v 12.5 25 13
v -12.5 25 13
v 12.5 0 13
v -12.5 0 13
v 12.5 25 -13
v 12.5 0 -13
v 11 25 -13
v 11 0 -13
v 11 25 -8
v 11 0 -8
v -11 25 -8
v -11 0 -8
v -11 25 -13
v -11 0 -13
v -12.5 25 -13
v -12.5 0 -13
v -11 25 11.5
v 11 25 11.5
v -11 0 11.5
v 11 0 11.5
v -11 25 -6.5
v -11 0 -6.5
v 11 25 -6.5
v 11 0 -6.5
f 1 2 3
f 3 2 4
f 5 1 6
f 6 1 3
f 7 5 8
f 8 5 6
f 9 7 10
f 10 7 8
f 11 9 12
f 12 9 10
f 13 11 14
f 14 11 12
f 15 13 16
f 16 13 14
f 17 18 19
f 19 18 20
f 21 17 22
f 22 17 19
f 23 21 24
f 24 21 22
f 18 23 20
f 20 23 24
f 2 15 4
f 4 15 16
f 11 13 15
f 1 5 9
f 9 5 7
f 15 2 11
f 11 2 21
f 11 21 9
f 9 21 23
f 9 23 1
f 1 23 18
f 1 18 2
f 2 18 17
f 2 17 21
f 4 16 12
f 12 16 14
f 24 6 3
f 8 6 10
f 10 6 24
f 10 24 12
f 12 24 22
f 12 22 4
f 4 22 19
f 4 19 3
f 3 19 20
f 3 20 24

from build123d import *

# Parameters (mm, degrees)
EXTRUDE_1_DEPTH = 25


with BuildPart() as part:
    # Эскиз1 → Бобышка-Вытянуть1 (new body)
    with BuildSketch(Plane(origin=(0, 0, 0), x_dir=(1, 0, 0), z_dir=(0, 1, 0))):
        Polygon((11, 8), (-11, 8), (-11, 13), (-12.5, 13), (-12.5, 6), (-12.5, -11), (-12.5, -11.5), (-12.5, -13), (-11, -13), (11, -13), (12.5, -13), (12.5, -11.5), (12.5, 6), (12.5, 6.5), (12.5, 8), (12.5, 13), (11, 13), align=None)
        Polygon((-11, 6.5), (11, 6.5), (11, 6), (11, -11), (11, -11.5), (-11, -11.5), (-11, -11), (-11, 6), align=None, mode=Mode.SUBTRACT)
    extrude(amount=EXTRUDE_1_DEPTH)


solid = part.part
